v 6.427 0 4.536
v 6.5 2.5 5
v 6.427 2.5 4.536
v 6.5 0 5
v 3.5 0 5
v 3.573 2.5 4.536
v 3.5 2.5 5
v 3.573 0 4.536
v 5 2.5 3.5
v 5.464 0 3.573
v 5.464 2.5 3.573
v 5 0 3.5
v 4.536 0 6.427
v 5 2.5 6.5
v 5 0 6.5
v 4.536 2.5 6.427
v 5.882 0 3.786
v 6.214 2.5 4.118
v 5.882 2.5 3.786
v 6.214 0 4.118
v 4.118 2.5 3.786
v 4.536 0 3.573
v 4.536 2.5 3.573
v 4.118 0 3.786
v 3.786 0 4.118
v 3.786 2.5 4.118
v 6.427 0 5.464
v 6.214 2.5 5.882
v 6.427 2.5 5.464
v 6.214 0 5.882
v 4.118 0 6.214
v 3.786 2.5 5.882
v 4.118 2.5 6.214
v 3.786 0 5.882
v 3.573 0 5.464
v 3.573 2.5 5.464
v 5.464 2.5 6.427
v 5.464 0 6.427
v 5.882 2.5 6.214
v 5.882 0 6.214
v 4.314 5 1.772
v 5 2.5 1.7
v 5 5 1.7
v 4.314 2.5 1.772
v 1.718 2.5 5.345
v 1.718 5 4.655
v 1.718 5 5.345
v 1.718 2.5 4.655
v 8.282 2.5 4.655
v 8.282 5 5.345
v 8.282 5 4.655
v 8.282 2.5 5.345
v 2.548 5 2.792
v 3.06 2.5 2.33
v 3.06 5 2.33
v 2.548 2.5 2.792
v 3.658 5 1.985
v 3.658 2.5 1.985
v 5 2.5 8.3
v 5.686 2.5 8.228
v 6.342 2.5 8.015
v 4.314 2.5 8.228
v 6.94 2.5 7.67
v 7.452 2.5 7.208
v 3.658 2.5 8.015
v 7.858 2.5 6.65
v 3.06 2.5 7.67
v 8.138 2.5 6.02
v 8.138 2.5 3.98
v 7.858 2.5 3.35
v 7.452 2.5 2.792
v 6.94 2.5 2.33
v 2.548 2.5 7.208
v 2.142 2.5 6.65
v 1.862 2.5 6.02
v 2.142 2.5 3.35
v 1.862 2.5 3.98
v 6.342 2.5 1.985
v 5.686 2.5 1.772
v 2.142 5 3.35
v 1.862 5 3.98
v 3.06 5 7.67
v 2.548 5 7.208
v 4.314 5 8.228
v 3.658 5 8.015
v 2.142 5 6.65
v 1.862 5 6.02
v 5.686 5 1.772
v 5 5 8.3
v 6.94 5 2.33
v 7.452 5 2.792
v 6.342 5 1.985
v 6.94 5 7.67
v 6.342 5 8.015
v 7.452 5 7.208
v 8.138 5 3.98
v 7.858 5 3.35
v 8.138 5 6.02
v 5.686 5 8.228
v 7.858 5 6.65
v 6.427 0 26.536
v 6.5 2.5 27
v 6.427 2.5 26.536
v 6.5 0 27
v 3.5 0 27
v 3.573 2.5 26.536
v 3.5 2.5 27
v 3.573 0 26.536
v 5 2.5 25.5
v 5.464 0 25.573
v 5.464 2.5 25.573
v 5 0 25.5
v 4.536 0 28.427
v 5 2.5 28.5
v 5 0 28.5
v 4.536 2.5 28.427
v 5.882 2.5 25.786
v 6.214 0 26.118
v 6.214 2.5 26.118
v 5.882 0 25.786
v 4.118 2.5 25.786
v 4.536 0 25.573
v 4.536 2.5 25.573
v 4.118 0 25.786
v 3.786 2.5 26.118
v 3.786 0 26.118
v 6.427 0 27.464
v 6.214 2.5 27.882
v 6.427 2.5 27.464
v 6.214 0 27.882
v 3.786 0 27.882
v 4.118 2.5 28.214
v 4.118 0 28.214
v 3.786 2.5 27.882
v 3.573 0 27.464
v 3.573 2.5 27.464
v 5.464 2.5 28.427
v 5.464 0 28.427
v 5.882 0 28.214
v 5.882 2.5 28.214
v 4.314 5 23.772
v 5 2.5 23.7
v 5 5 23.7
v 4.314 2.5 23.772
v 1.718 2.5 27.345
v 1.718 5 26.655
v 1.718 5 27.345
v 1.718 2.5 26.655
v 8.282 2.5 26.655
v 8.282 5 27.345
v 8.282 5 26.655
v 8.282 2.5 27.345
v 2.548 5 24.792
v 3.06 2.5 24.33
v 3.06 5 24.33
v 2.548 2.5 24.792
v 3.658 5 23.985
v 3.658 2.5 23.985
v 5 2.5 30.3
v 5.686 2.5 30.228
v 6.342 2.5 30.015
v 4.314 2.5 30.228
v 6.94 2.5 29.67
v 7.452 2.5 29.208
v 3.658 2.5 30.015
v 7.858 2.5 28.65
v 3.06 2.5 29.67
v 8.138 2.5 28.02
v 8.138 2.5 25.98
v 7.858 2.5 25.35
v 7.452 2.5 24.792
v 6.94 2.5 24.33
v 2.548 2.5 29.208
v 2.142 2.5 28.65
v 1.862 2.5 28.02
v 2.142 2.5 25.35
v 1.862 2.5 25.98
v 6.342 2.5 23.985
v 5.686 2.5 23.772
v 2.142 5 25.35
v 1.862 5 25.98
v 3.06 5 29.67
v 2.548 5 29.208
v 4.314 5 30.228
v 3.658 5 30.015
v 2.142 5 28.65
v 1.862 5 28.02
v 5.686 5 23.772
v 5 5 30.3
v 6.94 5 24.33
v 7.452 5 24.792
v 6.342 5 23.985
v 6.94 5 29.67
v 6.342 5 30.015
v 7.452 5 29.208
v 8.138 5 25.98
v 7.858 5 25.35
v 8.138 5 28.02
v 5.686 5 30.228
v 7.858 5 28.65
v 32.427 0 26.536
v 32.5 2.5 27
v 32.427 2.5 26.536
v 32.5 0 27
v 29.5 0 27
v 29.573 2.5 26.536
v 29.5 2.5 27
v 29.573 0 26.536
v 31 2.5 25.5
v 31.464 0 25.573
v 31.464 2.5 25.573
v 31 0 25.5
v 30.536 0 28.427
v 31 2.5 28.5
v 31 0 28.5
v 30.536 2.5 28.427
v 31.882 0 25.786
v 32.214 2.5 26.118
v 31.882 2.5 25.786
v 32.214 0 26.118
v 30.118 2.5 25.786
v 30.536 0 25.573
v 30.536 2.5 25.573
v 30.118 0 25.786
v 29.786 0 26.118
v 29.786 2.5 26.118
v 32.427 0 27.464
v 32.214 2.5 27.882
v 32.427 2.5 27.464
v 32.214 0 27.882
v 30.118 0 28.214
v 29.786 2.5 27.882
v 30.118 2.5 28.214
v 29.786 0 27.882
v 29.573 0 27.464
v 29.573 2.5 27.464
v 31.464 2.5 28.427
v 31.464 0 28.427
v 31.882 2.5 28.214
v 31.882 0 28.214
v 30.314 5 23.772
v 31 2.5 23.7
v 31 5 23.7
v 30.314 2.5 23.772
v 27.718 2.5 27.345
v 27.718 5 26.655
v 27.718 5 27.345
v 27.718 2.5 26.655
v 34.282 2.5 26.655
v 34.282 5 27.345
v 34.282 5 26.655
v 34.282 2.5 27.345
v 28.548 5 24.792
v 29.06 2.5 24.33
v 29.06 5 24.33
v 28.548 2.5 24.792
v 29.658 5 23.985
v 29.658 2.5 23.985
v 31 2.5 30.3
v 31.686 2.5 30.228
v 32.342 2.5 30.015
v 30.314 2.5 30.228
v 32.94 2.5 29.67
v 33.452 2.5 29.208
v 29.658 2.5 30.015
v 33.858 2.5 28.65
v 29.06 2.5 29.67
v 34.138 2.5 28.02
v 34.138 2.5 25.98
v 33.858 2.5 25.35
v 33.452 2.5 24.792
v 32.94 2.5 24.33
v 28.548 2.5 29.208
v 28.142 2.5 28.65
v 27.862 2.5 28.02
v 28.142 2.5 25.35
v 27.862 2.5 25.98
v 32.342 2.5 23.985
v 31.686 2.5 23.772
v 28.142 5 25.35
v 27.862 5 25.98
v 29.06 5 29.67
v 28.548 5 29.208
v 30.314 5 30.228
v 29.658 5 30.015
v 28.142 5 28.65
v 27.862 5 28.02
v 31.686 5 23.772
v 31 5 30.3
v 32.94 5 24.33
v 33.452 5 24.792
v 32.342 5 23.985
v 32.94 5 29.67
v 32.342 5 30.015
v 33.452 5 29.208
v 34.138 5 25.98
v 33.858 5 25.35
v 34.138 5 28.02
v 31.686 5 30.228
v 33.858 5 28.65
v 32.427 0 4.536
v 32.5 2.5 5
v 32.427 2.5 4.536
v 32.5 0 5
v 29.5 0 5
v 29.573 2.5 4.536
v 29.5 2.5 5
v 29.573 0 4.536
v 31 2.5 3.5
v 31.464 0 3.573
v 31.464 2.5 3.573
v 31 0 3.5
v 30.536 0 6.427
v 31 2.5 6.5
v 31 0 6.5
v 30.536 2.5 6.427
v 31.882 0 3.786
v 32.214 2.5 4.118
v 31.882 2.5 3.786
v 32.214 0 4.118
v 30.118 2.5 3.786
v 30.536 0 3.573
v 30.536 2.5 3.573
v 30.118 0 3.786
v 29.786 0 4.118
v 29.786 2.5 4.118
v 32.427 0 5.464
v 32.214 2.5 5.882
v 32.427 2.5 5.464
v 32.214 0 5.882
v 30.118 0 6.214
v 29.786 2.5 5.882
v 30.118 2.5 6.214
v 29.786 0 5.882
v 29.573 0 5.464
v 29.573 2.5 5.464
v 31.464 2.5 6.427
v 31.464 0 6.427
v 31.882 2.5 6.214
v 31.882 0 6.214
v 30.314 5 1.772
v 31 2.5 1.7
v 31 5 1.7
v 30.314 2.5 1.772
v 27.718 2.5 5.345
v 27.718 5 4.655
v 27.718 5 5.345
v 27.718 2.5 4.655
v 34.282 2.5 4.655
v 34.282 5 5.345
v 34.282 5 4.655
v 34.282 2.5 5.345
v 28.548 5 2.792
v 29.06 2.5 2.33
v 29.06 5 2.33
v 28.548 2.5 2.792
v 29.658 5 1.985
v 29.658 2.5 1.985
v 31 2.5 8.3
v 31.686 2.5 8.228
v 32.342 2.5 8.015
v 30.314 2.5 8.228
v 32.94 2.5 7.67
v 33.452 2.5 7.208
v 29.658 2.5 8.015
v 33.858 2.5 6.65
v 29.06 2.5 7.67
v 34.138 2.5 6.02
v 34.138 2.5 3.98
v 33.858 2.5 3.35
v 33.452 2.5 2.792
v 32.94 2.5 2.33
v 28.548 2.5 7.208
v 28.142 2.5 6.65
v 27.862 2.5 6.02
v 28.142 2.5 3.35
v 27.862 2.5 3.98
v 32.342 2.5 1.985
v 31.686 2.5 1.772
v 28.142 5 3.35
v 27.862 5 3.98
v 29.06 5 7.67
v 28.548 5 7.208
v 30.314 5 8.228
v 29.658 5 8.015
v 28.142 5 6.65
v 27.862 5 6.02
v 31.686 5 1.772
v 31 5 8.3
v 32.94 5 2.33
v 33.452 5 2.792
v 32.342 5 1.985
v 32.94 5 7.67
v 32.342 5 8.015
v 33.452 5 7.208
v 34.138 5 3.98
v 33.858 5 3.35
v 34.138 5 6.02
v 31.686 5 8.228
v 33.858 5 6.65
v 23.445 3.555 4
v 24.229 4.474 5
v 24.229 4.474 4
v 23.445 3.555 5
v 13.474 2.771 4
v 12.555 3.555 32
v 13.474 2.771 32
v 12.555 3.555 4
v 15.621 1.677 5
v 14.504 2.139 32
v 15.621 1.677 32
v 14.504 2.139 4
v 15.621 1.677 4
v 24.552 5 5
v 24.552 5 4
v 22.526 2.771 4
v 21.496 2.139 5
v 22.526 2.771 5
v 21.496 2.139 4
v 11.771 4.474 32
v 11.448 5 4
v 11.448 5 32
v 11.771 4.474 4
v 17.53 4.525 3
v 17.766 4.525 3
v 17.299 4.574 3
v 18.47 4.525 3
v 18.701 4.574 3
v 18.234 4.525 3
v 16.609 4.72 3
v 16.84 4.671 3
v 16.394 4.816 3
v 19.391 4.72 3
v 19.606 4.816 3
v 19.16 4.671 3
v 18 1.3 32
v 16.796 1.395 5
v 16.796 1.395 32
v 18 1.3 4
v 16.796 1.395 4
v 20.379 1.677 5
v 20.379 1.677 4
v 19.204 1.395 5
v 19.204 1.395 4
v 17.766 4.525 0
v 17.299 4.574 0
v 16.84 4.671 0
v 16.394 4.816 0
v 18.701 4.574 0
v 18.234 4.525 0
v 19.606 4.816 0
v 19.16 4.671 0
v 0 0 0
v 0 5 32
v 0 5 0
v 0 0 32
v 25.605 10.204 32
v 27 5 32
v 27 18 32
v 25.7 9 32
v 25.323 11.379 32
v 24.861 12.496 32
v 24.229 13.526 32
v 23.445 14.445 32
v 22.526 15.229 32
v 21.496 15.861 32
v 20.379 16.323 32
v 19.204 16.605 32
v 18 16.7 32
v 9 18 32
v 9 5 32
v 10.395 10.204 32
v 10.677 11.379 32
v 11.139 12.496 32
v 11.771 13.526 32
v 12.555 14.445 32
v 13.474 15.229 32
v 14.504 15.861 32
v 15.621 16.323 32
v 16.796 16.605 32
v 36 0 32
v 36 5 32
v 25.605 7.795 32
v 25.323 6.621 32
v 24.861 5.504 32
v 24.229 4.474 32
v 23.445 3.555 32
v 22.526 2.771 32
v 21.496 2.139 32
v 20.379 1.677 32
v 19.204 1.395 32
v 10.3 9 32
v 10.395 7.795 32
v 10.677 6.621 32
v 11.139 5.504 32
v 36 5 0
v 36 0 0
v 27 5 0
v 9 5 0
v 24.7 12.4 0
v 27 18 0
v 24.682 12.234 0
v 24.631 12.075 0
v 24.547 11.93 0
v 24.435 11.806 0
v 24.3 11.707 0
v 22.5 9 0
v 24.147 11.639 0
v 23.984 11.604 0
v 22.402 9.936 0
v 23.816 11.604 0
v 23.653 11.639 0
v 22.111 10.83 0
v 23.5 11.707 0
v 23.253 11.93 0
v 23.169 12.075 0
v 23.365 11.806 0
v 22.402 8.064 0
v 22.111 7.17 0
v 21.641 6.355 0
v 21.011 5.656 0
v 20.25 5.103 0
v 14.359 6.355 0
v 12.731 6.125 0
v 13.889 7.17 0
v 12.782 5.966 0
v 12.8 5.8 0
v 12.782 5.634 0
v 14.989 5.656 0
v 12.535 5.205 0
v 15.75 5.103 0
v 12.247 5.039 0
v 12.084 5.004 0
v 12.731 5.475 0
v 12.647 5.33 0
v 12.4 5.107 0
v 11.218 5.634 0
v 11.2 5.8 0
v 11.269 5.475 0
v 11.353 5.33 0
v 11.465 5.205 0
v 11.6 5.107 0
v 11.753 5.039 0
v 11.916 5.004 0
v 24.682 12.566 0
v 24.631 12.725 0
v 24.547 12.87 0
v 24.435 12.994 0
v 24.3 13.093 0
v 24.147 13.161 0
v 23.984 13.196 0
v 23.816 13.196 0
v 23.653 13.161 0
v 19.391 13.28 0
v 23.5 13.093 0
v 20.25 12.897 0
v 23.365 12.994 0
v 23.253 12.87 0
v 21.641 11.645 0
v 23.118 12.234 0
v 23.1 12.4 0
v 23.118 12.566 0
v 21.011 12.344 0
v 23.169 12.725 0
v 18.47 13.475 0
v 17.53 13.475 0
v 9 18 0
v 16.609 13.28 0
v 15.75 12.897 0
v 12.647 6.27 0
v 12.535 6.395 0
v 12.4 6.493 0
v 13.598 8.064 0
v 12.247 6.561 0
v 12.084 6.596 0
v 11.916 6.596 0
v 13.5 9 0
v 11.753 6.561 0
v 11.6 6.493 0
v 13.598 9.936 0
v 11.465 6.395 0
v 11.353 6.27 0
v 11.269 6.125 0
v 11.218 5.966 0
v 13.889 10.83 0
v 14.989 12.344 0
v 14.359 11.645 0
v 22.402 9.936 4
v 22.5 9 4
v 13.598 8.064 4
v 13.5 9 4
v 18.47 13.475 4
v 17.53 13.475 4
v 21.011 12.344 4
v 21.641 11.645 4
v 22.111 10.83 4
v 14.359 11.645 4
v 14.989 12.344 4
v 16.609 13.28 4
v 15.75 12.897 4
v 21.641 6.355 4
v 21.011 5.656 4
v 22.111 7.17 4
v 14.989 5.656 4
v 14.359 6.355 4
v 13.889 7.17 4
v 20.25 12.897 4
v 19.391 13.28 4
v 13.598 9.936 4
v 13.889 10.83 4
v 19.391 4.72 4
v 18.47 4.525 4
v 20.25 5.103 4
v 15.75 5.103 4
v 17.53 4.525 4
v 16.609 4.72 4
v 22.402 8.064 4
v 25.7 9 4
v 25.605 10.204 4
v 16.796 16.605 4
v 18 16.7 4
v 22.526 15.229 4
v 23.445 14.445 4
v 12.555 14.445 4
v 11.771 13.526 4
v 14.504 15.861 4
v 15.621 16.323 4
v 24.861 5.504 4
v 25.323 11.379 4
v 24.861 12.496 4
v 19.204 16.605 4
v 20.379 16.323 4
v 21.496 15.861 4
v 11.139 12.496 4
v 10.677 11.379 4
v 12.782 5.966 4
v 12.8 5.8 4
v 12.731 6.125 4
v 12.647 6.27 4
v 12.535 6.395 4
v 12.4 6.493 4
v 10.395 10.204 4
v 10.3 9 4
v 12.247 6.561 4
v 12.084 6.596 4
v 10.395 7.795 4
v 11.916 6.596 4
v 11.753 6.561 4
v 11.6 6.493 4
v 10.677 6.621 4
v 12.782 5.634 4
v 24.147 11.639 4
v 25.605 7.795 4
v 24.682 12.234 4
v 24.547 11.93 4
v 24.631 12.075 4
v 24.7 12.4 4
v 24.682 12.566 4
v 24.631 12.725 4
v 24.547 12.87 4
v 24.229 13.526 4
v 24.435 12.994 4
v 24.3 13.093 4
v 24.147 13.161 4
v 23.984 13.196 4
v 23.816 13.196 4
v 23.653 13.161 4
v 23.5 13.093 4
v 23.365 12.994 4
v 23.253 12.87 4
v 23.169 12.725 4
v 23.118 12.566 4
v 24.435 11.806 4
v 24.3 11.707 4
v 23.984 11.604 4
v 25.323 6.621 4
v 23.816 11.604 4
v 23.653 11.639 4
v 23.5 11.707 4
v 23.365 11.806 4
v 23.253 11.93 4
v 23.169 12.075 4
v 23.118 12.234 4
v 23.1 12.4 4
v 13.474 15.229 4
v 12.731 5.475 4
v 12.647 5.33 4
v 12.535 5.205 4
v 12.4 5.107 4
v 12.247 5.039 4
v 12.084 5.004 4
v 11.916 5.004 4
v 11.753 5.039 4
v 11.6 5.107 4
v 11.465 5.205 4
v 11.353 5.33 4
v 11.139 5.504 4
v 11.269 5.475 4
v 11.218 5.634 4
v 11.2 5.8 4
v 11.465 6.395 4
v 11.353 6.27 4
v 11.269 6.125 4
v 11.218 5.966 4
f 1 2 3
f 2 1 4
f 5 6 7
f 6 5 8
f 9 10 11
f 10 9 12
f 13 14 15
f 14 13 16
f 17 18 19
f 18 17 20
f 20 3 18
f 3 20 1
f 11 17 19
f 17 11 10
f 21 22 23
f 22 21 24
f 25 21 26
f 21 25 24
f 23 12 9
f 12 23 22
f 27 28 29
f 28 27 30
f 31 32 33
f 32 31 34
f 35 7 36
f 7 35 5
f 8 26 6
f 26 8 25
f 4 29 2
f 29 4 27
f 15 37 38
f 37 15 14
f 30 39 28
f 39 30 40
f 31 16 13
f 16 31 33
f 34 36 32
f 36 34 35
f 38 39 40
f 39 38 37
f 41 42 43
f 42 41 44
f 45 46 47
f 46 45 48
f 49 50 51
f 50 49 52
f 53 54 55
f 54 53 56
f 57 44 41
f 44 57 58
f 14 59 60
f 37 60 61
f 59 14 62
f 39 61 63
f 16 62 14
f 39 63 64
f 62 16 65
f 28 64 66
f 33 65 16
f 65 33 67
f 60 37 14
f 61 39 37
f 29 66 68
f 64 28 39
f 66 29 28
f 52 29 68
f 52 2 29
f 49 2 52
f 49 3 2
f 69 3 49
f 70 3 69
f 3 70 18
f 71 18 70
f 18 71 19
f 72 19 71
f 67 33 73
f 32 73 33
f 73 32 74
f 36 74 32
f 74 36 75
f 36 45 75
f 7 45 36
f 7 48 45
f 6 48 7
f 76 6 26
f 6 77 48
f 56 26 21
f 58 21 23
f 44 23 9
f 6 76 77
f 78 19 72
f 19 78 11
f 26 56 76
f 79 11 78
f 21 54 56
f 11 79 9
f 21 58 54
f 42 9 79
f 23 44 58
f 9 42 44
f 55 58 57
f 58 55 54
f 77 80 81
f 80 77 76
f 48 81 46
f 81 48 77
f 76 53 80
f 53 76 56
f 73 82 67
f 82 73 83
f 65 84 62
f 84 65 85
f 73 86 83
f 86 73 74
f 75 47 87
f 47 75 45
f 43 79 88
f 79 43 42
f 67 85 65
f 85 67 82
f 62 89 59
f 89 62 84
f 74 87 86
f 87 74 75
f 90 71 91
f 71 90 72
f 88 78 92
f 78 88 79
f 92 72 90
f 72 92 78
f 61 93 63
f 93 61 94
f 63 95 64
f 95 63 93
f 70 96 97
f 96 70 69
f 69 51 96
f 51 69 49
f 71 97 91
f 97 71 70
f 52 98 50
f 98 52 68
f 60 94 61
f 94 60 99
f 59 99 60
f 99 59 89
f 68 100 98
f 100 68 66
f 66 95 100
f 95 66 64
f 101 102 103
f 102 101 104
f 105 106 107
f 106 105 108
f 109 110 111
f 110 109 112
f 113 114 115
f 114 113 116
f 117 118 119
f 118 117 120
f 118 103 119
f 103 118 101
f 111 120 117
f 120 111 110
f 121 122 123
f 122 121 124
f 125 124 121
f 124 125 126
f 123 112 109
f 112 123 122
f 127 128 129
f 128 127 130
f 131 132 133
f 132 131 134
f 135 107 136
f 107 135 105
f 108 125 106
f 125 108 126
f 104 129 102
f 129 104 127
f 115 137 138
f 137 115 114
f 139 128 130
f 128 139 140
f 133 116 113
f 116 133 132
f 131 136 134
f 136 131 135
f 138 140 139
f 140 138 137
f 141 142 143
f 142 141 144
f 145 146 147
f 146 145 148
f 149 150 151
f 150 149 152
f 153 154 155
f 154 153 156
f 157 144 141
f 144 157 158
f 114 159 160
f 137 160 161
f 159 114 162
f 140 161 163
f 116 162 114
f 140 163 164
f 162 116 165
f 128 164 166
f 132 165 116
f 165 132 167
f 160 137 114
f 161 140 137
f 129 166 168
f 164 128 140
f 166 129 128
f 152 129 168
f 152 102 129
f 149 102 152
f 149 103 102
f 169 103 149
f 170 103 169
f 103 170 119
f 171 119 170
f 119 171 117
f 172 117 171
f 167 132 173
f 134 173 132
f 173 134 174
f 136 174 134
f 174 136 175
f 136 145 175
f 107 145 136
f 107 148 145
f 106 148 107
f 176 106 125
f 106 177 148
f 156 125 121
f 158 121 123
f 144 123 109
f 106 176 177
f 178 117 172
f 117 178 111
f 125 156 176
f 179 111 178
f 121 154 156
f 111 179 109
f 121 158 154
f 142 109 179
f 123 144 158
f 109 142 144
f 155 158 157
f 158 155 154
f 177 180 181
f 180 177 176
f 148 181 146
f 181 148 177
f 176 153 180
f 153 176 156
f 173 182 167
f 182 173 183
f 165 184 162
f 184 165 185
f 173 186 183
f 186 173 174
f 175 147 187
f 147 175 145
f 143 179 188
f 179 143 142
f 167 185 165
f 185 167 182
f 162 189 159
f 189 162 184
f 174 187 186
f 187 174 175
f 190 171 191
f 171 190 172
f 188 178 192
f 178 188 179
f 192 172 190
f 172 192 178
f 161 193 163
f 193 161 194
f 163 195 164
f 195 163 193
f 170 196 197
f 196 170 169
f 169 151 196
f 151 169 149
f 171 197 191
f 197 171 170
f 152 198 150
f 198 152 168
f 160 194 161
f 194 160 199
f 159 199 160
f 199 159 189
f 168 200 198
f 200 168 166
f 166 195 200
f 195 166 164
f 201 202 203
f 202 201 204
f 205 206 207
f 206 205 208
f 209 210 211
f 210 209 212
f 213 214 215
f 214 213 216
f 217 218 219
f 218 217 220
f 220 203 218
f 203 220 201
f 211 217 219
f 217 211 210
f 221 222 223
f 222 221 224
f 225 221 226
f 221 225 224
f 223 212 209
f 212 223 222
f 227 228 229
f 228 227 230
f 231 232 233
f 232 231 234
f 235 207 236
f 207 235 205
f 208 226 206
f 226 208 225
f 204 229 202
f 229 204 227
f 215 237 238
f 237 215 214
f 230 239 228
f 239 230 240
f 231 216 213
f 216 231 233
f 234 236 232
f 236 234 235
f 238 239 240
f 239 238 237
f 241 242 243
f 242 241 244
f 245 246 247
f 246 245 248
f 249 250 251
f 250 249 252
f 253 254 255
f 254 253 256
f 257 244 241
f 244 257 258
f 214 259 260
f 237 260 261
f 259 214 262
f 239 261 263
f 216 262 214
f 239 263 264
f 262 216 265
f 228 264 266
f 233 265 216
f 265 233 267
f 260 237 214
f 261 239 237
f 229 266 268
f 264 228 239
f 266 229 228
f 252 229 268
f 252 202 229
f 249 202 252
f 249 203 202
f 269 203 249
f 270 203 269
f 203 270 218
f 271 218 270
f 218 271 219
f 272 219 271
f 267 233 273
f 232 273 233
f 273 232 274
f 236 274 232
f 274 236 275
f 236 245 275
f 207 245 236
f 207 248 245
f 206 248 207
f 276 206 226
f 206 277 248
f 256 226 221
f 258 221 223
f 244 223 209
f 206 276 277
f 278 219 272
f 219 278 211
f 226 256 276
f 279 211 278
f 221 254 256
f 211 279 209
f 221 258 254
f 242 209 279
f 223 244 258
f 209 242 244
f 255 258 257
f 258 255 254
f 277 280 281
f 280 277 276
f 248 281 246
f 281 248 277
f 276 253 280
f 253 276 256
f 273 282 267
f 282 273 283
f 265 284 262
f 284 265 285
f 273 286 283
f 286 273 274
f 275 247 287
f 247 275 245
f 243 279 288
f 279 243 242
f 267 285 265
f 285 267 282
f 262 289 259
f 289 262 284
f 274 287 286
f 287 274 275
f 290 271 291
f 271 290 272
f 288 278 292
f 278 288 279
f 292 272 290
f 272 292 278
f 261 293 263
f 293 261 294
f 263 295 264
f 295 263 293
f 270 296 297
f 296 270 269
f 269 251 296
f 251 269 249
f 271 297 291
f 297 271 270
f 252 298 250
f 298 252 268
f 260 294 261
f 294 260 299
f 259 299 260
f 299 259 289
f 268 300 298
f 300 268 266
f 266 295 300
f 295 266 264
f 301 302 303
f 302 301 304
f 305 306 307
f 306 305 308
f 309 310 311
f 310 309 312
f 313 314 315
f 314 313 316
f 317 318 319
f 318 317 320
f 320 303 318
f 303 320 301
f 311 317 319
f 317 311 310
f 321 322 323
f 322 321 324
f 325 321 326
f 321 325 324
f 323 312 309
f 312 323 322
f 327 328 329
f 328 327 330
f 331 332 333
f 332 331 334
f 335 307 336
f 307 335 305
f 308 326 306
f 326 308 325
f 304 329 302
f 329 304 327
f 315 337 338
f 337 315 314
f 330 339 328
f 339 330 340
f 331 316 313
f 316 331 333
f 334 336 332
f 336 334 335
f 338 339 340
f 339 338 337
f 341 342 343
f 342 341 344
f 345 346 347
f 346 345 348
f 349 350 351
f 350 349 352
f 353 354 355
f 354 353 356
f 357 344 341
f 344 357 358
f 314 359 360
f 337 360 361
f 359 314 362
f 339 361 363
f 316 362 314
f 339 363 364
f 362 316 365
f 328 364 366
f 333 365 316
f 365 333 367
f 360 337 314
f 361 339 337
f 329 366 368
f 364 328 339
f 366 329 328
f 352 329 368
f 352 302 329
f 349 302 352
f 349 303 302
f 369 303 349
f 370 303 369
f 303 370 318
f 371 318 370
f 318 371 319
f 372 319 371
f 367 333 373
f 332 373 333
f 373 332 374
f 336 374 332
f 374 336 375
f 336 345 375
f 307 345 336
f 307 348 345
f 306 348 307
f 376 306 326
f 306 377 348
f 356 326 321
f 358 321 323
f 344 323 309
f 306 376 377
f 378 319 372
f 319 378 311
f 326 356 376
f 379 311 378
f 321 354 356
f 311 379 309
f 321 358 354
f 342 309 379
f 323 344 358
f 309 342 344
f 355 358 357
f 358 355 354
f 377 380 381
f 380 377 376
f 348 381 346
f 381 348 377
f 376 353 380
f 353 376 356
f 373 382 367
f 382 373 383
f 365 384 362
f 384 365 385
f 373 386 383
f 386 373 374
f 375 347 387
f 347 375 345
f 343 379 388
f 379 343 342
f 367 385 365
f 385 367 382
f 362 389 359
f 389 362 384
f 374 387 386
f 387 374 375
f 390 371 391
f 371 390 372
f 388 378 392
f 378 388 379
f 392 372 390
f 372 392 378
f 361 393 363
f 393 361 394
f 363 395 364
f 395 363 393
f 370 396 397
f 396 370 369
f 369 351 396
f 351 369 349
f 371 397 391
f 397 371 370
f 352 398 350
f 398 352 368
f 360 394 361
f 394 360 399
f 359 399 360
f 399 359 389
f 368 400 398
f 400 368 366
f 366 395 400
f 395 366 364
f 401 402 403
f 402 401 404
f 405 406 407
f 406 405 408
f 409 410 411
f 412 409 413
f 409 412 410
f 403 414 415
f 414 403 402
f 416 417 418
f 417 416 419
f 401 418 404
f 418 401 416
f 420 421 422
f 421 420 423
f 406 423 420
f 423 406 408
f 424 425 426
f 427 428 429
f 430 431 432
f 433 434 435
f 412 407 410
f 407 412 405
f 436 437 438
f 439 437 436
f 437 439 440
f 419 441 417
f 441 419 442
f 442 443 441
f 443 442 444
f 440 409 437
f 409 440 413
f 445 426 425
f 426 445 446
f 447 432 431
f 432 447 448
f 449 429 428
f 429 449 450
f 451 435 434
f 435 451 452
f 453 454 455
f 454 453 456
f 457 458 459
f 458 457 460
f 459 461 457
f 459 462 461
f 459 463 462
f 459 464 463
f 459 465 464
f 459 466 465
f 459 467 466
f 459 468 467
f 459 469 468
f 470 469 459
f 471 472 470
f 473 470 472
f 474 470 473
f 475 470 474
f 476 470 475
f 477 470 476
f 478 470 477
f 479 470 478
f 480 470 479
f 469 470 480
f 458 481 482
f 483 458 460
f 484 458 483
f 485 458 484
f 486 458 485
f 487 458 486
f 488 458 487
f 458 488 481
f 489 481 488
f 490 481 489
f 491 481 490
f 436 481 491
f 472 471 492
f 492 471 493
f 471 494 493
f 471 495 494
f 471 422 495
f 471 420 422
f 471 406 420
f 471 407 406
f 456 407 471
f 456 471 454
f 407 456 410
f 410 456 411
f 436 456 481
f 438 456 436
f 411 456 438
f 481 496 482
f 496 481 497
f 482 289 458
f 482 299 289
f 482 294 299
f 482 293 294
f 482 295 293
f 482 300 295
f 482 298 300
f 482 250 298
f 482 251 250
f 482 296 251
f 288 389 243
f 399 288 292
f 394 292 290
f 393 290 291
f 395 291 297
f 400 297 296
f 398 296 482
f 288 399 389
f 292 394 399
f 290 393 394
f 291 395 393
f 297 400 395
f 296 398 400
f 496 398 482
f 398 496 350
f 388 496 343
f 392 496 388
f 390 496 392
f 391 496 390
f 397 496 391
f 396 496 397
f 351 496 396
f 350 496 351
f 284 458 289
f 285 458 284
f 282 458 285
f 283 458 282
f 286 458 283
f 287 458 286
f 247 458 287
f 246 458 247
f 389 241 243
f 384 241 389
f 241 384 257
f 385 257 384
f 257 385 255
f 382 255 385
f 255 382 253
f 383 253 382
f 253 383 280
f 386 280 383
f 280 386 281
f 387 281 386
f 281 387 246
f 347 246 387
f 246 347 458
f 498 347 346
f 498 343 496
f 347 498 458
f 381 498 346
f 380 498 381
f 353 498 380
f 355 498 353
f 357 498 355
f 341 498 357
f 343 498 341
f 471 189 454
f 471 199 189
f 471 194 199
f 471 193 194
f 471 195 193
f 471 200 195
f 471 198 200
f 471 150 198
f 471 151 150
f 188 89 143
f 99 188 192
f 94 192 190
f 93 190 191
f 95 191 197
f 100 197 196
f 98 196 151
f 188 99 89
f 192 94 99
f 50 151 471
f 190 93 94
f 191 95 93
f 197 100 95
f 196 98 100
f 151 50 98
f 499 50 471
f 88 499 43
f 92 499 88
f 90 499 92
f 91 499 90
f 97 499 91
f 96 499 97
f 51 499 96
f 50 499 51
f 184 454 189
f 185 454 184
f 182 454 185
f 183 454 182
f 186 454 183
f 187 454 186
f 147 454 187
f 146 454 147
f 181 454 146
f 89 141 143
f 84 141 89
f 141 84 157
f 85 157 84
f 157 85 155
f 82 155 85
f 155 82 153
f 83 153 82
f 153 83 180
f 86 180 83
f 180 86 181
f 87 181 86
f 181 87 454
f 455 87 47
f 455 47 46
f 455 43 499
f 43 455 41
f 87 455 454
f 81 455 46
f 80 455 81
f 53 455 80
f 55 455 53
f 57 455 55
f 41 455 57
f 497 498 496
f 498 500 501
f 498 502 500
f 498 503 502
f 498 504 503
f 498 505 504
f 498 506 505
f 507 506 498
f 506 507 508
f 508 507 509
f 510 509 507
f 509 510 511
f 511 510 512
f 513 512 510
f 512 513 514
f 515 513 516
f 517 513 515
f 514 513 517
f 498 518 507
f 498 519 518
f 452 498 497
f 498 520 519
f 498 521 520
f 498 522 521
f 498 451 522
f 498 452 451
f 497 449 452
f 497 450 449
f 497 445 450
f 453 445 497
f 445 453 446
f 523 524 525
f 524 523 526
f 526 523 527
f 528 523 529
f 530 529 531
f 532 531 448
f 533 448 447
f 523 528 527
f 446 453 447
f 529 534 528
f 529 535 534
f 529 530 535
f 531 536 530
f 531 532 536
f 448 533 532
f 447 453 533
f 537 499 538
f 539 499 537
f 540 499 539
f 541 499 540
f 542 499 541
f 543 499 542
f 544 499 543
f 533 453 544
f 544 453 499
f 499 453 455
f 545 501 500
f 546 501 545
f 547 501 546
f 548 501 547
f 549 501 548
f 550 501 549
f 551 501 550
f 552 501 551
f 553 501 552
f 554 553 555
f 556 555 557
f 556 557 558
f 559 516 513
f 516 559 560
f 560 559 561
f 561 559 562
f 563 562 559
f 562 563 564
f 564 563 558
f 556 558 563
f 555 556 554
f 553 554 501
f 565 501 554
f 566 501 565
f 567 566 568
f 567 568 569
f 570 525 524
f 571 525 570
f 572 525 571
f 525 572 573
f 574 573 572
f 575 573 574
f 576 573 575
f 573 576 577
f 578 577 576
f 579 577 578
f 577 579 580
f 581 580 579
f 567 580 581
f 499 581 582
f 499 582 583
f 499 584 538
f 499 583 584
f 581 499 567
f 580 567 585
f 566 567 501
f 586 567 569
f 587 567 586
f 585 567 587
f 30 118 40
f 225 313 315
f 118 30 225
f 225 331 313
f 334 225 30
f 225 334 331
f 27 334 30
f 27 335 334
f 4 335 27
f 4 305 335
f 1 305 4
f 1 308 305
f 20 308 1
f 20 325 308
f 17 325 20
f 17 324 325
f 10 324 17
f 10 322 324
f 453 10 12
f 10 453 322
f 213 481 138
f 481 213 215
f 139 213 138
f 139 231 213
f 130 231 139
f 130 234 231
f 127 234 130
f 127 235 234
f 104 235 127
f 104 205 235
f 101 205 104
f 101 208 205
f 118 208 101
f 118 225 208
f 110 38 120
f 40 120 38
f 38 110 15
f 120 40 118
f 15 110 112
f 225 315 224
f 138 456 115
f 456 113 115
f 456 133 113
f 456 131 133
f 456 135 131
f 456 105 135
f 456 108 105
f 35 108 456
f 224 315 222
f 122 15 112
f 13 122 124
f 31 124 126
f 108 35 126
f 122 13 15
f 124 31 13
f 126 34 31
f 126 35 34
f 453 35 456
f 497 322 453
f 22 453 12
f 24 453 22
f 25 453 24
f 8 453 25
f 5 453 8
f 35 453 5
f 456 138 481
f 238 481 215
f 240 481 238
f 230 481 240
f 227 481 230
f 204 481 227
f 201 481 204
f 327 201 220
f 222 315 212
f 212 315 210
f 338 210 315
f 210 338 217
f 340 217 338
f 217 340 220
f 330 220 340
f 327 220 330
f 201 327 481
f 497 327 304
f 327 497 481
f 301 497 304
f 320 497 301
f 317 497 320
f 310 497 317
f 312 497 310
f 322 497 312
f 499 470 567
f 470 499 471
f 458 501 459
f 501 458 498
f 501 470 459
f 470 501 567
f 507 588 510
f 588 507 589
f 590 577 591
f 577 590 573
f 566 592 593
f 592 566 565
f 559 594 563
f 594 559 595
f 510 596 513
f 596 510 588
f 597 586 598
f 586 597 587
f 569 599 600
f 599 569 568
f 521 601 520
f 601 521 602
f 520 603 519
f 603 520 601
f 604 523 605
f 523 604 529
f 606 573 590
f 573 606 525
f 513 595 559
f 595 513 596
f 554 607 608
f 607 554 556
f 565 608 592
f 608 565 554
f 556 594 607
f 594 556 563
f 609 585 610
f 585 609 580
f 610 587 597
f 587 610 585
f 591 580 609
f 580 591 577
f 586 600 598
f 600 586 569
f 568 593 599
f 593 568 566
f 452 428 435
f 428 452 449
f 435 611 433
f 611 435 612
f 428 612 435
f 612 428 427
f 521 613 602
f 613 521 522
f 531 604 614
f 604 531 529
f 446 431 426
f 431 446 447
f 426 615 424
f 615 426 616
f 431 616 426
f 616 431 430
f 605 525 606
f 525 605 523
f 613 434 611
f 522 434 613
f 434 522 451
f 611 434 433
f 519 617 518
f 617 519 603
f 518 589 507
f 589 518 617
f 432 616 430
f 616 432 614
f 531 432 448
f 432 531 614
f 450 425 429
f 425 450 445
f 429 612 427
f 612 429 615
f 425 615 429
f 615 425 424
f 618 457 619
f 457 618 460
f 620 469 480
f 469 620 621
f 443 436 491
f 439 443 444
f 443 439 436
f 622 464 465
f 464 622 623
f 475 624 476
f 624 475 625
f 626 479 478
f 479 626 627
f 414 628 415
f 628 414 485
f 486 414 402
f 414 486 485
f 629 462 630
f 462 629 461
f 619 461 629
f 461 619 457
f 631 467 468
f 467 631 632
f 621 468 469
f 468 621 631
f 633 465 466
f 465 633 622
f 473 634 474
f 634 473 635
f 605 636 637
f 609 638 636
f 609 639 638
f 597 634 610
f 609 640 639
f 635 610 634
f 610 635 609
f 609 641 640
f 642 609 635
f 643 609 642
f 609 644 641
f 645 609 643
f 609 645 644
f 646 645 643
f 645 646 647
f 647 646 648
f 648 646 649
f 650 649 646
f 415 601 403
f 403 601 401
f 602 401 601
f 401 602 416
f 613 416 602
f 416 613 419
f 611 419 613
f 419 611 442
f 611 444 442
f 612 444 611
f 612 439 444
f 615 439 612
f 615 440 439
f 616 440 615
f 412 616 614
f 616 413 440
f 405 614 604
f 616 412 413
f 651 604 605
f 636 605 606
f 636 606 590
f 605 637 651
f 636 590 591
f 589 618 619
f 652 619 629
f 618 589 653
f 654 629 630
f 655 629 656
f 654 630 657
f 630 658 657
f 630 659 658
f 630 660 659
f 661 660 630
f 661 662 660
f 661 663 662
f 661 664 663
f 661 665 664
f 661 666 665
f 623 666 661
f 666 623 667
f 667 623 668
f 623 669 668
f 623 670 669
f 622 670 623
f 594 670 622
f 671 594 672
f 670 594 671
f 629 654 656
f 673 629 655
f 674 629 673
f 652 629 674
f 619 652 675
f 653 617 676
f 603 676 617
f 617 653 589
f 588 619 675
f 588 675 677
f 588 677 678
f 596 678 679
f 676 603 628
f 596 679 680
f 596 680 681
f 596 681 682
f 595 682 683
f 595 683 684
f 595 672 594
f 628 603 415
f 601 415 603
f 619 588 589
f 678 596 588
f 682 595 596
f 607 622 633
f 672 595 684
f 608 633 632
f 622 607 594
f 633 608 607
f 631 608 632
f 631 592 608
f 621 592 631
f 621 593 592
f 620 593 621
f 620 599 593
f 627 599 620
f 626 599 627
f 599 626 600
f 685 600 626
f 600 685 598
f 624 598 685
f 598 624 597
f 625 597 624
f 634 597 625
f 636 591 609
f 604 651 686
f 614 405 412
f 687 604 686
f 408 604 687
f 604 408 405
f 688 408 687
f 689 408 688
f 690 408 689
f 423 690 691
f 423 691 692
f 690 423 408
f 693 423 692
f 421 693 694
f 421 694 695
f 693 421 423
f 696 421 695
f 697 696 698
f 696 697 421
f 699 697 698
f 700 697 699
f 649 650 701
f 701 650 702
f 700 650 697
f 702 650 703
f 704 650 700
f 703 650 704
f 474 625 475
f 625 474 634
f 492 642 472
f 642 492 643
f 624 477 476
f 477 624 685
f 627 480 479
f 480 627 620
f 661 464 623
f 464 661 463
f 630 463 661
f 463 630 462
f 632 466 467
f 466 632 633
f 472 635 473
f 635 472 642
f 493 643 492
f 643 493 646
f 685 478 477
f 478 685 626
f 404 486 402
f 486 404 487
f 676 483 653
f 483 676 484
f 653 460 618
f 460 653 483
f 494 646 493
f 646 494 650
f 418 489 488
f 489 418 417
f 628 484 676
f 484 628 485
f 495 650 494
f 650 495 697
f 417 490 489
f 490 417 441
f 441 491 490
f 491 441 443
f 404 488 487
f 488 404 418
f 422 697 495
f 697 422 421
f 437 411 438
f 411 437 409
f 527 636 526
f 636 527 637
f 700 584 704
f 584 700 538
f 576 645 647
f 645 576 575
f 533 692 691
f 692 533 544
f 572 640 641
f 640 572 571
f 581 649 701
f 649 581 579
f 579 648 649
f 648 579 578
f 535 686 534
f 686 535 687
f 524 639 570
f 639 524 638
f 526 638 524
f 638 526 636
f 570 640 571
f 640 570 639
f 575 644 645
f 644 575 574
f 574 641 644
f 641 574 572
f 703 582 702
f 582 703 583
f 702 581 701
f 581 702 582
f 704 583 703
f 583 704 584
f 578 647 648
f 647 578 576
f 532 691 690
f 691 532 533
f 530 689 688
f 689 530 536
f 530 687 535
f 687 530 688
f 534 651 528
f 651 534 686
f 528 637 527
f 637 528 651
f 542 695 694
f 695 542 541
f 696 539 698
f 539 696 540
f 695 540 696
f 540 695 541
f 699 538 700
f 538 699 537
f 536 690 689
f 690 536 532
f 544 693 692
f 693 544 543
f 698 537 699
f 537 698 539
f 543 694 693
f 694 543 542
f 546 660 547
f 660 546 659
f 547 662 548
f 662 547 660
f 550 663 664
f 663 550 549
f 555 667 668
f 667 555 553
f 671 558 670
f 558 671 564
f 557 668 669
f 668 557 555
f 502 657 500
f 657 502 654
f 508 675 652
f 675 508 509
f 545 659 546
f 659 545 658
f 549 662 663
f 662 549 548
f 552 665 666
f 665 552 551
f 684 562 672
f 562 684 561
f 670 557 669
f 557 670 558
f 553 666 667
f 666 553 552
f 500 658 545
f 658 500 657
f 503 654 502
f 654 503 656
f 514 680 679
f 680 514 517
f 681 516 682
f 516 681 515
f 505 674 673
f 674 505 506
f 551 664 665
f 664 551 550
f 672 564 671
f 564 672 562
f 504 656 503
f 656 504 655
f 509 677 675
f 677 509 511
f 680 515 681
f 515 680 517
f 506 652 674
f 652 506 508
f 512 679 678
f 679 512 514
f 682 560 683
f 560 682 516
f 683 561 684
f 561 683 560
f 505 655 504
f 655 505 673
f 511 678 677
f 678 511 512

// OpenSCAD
// file: config.scad
/**
 * Глобальный конфигурационный файл
 */
// качество цилиндров
$fn=30;

// избегание совпадения граней
DELTA=0.1;

// толщина рамы
FRAME=18;

// расстояние от стенок до гайки
DELTA_NUT = 0.3;
// высота, макс. диаметр, между стенками (размер ключа)
// гайка М3
m3_base=[2.4,6.4,5.5];
m3_hole=m3_base+[DELTA_NUT,DELTA_NUT,DELTA_NUT];
//[3,7,6]
// гайка М4
m4_base=[3.2,8.1,6.9];
m4_hole=m4_base+[DELTA_NUT,DELTA_NUT,DELTA_NUT];
// гайка М5
m5_base=[3.8,9.1,7.9];
m5_hole=m5_base+[DELTA_NUT,DELTA_NUT,DELTA_NUT];
// main file
include <config.scad>

// d1=15;
// Увеличиваем внутренний диаметр на 0.4 мм
// Увеличиваем внутренний диаметр на 0.3 мм
d1=15.4;
d2=9;
module hole(x,y) {
		translate([x,-1,y]) rotate([-90,0,0]) {
			cylinder(7,r=3/2,$fn=20);
			translate([0,0,3.5]) rotate([0,0,90])cylinder(3,r=6.6/2);
		}
}


module table_part01() {
	difference() {
		cube([36,5,32]);
		hole(5,5);
		hole(5,27);
		hole(31,27);
		//hole(31,13);
		hole(31,5);
		translate([5,-1,5]) rotate([-90,0,0]) {
			translate([10,0,0]) rotate([-90,0,0]) {
				translate([3,-10,-28]) cylinder(30,r=d1/2,$fn=40);
				translate([3,-10,0]) rotate([0,0,90]) cylinder(20,r=d2/2);
			}
		}
	}
	translate([9,0,0])	difference() {
		cube([18,18,32]);
		translate([9,9,-1]) cylinder(25,r=d2/2);
		translate([9,9,4]) cylinder(30,r=d1/2,$fn=40);

// отверстия для извлечения подшипников
		translate([3,5.8,-1]) cylinder(25,r=0.8);
		translate([14.9,12.4,-1]) cylinder(25,r=0.8);
	}
}

table_part01();
